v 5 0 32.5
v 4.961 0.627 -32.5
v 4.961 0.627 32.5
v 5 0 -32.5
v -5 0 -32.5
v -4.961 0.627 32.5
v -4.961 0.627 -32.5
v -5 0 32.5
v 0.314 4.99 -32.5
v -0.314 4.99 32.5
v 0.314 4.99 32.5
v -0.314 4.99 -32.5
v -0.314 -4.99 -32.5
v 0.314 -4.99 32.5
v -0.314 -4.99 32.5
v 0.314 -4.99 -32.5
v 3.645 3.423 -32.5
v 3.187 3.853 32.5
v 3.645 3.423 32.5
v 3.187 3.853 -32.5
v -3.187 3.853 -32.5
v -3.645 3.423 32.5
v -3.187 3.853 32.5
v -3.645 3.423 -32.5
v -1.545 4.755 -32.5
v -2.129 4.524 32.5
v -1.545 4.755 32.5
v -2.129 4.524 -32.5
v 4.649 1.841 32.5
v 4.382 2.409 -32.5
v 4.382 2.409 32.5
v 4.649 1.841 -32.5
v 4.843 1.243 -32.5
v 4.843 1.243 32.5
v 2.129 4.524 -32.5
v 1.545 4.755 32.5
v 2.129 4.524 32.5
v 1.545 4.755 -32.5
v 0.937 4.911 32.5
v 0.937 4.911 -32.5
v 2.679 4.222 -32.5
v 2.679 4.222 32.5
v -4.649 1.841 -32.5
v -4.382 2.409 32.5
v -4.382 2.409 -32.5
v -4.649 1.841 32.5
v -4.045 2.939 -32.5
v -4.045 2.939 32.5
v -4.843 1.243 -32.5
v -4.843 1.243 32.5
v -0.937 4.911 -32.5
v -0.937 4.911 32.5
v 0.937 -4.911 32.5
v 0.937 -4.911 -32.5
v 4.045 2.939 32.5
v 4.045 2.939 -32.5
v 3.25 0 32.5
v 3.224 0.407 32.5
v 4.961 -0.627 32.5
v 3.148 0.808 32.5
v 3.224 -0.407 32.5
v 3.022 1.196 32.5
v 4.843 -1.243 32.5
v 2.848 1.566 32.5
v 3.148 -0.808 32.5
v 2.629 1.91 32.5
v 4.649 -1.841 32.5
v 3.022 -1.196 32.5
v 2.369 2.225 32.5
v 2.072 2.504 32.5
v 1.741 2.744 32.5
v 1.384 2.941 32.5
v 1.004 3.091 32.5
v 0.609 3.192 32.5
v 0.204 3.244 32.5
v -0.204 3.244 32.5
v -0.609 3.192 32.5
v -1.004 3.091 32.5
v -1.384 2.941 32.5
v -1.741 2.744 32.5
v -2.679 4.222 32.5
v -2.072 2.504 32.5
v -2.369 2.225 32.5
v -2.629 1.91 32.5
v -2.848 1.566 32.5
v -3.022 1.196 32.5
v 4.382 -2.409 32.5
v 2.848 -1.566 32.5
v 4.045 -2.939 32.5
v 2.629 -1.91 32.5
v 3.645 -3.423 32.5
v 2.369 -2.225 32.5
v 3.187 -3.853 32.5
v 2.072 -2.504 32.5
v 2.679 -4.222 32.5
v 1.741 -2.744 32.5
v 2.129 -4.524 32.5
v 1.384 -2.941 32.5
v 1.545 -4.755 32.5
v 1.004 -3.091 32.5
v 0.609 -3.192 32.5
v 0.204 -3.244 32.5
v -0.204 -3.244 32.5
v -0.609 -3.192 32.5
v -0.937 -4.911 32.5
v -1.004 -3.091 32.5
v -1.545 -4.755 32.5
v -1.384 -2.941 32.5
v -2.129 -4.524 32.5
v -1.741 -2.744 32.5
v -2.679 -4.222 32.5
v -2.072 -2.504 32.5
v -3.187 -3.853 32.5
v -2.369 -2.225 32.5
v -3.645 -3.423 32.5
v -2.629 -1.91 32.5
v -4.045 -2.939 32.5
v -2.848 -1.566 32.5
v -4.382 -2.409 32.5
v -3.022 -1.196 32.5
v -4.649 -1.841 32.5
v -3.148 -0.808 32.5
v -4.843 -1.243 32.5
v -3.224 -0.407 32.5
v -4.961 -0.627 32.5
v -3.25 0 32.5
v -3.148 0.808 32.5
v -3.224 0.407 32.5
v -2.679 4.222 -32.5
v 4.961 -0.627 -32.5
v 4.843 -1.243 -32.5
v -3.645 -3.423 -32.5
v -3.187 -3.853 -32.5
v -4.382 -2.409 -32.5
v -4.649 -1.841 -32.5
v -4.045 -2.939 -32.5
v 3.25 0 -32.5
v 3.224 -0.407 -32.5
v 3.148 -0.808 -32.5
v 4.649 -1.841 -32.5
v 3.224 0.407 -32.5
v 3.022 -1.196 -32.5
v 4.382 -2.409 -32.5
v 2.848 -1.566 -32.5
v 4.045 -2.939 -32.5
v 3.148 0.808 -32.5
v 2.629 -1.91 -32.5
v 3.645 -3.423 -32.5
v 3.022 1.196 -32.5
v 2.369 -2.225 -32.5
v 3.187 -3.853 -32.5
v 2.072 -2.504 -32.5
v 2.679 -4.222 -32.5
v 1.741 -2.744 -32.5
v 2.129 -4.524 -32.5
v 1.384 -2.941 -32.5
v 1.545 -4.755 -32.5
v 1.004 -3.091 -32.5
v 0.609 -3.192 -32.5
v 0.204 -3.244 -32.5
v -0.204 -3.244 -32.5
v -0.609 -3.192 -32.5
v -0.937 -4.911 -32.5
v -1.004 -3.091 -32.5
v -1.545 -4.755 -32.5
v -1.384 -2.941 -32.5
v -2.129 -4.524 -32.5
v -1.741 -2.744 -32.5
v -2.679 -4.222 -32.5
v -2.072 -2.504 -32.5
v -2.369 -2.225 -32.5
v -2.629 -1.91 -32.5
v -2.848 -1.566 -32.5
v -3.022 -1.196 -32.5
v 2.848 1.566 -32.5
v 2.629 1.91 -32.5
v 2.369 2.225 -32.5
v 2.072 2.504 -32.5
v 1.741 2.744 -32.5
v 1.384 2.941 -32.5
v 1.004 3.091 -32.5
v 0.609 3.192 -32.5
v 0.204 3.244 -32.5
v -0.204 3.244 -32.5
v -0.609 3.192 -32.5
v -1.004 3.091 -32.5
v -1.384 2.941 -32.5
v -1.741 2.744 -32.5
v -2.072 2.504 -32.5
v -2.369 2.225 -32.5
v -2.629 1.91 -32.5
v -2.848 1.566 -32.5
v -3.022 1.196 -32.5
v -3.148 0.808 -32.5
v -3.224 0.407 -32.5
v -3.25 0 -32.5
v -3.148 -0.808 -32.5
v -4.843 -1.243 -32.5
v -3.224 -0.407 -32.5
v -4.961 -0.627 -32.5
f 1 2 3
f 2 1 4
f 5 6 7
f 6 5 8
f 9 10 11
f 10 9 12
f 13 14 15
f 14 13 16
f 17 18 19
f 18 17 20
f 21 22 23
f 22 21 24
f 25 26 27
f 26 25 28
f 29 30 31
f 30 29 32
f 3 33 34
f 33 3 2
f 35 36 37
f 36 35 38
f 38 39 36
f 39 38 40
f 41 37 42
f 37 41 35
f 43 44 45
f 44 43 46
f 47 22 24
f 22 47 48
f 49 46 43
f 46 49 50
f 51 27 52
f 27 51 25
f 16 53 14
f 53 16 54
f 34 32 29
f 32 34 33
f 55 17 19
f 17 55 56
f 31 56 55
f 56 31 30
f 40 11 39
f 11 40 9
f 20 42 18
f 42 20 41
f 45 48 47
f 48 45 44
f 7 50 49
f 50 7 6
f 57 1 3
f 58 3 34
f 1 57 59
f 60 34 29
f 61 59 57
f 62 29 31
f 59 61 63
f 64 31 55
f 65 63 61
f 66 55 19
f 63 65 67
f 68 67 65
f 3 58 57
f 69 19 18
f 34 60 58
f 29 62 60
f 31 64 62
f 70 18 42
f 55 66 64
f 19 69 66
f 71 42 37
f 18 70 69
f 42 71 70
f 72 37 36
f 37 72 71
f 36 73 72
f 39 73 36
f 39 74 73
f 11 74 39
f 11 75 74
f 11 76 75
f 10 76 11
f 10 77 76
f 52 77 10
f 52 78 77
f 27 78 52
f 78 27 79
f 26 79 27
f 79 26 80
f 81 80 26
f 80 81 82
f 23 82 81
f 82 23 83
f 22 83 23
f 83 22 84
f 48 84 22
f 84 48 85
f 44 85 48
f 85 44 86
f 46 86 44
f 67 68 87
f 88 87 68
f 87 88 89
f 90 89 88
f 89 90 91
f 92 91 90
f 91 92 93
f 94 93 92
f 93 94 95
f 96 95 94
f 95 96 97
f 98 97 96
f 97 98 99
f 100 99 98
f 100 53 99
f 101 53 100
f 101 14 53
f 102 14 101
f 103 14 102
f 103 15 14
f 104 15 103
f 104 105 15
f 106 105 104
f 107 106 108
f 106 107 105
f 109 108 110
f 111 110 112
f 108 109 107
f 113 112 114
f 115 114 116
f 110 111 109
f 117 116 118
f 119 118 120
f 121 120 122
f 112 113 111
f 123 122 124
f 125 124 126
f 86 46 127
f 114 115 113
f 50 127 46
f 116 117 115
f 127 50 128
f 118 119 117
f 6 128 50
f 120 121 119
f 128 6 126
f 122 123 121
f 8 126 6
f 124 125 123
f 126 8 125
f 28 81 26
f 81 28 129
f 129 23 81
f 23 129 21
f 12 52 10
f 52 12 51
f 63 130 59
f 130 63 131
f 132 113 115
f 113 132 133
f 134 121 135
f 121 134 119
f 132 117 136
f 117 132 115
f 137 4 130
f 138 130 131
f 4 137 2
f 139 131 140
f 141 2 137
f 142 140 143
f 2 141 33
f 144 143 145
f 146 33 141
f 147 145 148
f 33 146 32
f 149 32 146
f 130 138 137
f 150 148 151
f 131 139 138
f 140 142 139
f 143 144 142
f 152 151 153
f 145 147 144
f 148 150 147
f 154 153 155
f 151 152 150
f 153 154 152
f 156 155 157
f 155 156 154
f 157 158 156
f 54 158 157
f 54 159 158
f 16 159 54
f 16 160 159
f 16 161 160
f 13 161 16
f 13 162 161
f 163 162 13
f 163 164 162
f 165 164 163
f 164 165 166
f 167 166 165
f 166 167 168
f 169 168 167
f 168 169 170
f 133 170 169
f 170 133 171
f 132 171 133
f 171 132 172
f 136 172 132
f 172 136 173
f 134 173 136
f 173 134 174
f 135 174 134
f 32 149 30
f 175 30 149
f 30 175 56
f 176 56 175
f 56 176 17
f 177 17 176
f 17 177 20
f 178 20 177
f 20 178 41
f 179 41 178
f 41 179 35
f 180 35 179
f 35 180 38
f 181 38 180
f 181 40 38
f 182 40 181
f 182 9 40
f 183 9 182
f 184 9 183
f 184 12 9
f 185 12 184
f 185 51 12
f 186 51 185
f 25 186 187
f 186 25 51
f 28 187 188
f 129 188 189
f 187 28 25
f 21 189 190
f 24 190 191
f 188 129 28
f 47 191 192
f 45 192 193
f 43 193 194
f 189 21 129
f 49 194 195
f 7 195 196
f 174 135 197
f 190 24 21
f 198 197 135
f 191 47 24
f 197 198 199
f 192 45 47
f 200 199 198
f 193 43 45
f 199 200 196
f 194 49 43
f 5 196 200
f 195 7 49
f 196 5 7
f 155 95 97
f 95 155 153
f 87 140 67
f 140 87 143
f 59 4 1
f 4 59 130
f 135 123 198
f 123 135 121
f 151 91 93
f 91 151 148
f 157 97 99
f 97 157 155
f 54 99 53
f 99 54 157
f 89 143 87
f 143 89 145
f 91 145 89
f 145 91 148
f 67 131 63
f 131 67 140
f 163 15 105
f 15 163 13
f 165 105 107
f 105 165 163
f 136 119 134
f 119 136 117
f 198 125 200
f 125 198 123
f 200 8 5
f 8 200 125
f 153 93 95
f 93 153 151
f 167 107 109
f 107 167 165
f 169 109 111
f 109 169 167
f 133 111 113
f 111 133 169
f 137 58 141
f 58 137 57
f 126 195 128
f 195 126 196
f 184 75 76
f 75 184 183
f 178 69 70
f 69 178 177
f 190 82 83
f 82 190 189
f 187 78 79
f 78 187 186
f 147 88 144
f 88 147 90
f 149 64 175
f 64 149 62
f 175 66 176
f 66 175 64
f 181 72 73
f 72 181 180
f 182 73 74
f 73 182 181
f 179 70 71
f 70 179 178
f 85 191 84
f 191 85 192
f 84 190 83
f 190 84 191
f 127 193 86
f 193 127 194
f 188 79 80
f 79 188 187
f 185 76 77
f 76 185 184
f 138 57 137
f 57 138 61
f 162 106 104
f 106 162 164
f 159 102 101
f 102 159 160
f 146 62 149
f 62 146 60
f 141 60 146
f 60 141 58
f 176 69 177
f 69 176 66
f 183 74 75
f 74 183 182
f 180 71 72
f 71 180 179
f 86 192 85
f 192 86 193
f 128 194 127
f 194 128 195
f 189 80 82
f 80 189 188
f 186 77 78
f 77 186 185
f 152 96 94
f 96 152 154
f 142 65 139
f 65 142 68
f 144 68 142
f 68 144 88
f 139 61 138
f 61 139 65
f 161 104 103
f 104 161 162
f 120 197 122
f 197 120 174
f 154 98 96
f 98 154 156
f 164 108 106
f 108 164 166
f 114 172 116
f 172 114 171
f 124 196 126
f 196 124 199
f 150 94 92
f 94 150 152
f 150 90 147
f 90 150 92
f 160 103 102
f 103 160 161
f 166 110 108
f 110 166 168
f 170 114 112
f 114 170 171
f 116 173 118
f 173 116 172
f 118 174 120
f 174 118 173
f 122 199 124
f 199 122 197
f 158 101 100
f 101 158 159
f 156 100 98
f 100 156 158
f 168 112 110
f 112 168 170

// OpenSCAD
$fn = 50;


difference() {
	union() {
		translate(v = [0, 0, -32.5000000000]) {
			cylinder(h = 65, r = 5.0000000000);
		}
	}
	union() {
		translate(v = [0, 0, -100.0000000000]) {
			cylinder(h = 200, r = 3.2500000000);
		}
	}
}
